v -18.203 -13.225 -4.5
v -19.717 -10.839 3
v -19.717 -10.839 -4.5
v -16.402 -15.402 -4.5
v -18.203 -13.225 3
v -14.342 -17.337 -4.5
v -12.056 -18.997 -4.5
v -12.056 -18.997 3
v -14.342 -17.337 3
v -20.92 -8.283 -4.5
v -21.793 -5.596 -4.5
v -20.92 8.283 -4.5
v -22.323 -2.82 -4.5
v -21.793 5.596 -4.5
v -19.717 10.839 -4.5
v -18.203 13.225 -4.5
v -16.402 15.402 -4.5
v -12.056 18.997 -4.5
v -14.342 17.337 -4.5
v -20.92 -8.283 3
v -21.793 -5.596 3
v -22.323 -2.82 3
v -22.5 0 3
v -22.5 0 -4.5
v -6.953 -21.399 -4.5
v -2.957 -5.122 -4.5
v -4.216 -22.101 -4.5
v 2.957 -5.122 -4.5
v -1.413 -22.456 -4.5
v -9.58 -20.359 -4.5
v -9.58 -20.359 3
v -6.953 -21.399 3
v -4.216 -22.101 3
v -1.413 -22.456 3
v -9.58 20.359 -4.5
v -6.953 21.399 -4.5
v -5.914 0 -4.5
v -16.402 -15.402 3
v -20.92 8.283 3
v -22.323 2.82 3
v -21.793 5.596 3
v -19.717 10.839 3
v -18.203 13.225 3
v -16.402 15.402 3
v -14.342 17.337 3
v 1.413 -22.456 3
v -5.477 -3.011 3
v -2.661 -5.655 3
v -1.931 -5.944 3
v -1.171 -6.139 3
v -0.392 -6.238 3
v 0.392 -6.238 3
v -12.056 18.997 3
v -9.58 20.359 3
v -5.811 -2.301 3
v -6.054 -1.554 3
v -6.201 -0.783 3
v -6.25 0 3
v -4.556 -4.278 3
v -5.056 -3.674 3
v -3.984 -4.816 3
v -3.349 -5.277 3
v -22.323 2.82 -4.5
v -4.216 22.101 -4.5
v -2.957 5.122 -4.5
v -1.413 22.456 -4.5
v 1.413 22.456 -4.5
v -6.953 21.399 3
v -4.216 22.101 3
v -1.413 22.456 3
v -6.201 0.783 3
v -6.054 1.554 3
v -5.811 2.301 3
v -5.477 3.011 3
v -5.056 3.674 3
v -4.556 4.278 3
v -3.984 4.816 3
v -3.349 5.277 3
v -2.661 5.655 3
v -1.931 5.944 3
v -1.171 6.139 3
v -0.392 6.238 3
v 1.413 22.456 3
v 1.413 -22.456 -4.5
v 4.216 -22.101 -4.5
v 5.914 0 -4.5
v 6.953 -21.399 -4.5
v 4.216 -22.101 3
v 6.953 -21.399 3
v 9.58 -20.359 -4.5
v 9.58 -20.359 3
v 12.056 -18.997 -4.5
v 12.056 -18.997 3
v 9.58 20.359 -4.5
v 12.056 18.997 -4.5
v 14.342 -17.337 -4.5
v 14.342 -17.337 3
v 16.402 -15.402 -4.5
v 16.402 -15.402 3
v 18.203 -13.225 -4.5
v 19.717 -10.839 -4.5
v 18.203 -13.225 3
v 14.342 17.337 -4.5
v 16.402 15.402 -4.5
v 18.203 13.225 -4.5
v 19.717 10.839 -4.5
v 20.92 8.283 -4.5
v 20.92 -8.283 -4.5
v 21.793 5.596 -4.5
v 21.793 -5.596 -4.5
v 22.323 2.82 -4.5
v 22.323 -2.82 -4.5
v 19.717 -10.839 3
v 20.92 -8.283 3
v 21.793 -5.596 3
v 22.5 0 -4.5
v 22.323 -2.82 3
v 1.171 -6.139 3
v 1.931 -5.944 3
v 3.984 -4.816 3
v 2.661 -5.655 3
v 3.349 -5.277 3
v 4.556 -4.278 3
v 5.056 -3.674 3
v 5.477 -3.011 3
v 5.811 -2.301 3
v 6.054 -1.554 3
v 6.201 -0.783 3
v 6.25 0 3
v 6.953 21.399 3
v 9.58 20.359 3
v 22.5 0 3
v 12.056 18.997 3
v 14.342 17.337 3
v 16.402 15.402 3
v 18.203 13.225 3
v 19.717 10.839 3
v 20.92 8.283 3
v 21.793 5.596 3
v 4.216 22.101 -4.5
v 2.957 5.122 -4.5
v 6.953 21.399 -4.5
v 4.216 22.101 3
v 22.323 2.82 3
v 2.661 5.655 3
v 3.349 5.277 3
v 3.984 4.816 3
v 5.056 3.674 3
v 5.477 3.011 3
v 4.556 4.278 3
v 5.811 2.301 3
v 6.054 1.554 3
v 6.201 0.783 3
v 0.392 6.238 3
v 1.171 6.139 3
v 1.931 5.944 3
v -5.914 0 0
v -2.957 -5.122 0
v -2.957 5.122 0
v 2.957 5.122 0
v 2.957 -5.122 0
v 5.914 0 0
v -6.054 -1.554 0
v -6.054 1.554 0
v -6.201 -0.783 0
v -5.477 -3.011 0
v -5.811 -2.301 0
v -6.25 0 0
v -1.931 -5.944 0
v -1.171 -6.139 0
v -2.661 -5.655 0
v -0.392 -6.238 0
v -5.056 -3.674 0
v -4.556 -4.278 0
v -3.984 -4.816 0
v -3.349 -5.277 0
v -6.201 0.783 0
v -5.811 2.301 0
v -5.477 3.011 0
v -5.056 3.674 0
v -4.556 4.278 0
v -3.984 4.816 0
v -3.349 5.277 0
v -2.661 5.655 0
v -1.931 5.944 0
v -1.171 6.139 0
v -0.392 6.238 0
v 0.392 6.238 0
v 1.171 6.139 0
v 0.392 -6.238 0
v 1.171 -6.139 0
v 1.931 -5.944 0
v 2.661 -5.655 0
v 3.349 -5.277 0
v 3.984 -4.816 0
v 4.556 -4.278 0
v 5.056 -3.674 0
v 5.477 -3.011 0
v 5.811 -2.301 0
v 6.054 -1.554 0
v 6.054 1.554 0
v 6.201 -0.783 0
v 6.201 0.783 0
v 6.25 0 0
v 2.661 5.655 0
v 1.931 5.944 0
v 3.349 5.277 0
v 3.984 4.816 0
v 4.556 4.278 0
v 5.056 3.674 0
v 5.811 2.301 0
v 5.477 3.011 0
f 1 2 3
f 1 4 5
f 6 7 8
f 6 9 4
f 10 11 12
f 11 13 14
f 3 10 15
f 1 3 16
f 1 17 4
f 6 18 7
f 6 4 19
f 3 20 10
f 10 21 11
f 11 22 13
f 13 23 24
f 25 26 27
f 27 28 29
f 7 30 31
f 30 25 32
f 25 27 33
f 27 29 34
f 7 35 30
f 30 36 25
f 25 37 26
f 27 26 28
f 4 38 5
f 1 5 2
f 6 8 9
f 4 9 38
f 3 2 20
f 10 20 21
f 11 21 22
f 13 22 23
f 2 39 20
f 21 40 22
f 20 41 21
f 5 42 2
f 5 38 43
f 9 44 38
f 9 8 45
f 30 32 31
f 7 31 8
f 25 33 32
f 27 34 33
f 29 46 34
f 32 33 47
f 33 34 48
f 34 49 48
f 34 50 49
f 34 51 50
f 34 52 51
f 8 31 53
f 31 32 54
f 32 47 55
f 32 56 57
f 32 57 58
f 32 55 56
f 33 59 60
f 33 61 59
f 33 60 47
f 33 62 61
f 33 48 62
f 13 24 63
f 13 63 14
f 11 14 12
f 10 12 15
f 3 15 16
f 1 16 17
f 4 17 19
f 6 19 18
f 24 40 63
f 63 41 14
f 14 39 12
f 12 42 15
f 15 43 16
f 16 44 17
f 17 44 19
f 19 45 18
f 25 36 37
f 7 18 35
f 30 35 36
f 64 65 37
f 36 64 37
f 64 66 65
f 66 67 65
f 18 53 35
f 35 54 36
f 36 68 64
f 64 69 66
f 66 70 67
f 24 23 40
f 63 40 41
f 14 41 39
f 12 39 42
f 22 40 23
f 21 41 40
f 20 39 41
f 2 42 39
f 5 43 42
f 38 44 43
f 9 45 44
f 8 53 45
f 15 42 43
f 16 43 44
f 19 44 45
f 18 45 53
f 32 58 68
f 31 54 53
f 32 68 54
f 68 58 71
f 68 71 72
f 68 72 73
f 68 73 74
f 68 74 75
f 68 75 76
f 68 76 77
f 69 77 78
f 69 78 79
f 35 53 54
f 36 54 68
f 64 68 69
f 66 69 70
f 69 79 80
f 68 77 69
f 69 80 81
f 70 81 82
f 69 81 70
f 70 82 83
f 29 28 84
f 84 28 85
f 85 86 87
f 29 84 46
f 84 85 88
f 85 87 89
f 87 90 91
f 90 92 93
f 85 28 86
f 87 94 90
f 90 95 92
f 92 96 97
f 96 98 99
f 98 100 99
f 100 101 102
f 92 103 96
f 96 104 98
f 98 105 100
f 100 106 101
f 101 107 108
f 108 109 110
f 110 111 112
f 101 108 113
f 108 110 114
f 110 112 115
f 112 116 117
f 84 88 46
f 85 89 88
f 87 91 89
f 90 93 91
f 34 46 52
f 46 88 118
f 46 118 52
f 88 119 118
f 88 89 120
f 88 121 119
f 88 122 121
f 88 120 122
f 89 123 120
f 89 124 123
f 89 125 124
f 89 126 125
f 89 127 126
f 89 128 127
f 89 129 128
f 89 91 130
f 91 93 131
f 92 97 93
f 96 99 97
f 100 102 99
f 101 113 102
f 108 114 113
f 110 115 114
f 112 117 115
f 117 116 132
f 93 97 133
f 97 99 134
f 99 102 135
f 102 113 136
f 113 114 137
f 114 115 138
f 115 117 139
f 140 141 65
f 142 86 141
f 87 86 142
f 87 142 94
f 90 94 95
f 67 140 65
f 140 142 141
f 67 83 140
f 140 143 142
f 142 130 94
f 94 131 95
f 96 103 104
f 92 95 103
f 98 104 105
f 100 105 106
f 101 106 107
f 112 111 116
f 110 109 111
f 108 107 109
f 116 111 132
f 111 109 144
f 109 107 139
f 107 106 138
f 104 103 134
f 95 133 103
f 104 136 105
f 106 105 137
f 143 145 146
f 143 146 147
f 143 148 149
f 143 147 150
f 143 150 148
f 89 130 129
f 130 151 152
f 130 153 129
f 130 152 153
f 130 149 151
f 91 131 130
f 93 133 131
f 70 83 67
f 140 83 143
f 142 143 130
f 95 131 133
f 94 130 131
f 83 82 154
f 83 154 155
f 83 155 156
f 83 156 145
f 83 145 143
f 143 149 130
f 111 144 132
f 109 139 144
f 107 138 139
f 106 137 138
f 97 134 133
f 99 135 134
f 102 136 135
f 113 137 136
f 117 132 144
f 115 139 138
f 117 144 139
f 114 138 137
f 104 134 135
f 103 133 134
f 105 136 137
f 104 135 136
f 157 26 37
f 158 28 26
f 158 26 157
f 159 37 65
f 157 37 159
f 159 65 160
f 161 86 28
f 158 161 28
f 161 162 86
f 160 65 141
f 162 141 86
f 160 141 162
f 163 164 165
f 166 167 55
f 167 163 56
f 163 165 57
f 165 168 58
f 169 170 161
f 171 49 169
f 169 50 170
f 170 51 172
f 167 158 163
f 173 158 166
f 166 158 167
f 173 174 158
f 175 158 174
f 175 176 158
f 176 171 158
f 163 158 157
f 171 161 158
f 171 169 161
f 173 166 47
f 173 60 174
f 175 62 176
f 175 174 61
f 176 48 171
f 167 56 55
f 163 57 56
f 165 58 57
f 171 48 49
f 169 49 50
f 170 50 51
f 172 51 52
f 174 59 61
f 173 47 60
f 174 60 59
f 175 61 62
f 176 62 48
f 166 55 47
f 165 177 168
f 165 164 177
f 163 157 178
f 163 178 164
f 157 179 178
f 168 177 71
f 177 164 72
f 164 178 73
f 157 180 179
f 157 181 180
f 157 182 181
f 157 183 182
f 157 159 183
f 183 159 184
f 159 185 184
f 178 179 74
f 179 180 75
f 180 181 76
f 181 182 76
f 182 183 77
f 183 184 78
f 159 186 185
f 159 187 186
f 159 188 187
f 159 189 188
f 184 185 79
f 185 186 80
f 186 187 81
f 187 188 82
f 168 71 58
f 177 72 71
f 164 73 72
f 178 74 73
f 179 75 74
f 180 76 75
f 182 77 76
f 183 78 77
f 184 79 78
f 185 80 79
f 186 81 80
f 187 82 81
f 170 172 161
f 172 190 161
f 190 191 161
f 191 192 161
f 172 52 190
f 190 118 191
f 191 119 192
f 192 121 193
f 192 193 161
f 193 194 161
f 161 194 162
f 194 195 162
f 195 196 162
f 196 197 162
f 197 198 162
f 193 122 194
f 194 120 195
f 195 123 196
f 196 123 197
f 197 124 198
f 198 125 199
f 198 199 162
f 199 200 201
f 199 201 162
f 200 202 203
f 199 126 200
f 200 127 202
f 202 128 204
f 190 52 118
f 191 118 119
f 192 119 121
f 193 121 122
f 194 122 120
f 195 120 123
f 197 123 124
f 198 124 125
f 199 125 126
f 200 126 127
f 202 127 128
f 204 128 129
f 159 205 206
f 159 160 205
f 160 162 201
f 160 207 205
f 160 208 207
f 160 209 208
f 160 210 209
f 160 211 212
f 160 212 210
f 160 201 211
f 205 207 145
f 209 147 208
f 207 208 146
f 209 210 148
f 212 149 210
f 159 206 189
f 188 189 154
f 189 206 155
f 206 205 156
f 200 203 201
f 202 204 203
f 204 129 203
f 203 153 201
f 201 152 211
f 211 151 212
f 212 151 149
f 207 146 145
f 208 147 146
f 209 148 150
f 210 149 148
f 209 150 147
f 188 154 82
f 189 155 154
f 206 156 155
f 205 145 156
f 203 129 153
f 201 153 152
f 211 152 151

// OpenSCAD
$fn = 50;

difference() {
	union() {
		translate(v = [0, 0, -4.5]) {
			cylinder(h = 7.5, r = 22.5);
		}
		#translate(v = [0, 0, -6.0]) {
			cylinder(h = 6, r = 2.875);
		}
	}
	union() {
		translate(v = [0, 0, 0]) {
			rotate(a = [0, 0, 0]) {
				difference() {
					union() {
						translate(v = [0, 0, -5]) {
							linear_extrude(height = 5) {
								polygon(points = [[5.914249999999999, 0.0], [2.957125, 5.1218907443321156], [-2.9571249999999982, 5.1218907443321156], [-5.914249999999999, 7.242867331857232e-16], [-2.9571250000000022, -5.121890744332115], [2.9571249999999956, -5.121890744332118]]);
							}
						}
					}
					union();
				}
			}
		}
		#cylinder(h = 3, r = 6.25);
		#translate(v = [0, 0, -100.0]) {
			cylinder(h = 200, r = 3.25);
		}
	}
}
